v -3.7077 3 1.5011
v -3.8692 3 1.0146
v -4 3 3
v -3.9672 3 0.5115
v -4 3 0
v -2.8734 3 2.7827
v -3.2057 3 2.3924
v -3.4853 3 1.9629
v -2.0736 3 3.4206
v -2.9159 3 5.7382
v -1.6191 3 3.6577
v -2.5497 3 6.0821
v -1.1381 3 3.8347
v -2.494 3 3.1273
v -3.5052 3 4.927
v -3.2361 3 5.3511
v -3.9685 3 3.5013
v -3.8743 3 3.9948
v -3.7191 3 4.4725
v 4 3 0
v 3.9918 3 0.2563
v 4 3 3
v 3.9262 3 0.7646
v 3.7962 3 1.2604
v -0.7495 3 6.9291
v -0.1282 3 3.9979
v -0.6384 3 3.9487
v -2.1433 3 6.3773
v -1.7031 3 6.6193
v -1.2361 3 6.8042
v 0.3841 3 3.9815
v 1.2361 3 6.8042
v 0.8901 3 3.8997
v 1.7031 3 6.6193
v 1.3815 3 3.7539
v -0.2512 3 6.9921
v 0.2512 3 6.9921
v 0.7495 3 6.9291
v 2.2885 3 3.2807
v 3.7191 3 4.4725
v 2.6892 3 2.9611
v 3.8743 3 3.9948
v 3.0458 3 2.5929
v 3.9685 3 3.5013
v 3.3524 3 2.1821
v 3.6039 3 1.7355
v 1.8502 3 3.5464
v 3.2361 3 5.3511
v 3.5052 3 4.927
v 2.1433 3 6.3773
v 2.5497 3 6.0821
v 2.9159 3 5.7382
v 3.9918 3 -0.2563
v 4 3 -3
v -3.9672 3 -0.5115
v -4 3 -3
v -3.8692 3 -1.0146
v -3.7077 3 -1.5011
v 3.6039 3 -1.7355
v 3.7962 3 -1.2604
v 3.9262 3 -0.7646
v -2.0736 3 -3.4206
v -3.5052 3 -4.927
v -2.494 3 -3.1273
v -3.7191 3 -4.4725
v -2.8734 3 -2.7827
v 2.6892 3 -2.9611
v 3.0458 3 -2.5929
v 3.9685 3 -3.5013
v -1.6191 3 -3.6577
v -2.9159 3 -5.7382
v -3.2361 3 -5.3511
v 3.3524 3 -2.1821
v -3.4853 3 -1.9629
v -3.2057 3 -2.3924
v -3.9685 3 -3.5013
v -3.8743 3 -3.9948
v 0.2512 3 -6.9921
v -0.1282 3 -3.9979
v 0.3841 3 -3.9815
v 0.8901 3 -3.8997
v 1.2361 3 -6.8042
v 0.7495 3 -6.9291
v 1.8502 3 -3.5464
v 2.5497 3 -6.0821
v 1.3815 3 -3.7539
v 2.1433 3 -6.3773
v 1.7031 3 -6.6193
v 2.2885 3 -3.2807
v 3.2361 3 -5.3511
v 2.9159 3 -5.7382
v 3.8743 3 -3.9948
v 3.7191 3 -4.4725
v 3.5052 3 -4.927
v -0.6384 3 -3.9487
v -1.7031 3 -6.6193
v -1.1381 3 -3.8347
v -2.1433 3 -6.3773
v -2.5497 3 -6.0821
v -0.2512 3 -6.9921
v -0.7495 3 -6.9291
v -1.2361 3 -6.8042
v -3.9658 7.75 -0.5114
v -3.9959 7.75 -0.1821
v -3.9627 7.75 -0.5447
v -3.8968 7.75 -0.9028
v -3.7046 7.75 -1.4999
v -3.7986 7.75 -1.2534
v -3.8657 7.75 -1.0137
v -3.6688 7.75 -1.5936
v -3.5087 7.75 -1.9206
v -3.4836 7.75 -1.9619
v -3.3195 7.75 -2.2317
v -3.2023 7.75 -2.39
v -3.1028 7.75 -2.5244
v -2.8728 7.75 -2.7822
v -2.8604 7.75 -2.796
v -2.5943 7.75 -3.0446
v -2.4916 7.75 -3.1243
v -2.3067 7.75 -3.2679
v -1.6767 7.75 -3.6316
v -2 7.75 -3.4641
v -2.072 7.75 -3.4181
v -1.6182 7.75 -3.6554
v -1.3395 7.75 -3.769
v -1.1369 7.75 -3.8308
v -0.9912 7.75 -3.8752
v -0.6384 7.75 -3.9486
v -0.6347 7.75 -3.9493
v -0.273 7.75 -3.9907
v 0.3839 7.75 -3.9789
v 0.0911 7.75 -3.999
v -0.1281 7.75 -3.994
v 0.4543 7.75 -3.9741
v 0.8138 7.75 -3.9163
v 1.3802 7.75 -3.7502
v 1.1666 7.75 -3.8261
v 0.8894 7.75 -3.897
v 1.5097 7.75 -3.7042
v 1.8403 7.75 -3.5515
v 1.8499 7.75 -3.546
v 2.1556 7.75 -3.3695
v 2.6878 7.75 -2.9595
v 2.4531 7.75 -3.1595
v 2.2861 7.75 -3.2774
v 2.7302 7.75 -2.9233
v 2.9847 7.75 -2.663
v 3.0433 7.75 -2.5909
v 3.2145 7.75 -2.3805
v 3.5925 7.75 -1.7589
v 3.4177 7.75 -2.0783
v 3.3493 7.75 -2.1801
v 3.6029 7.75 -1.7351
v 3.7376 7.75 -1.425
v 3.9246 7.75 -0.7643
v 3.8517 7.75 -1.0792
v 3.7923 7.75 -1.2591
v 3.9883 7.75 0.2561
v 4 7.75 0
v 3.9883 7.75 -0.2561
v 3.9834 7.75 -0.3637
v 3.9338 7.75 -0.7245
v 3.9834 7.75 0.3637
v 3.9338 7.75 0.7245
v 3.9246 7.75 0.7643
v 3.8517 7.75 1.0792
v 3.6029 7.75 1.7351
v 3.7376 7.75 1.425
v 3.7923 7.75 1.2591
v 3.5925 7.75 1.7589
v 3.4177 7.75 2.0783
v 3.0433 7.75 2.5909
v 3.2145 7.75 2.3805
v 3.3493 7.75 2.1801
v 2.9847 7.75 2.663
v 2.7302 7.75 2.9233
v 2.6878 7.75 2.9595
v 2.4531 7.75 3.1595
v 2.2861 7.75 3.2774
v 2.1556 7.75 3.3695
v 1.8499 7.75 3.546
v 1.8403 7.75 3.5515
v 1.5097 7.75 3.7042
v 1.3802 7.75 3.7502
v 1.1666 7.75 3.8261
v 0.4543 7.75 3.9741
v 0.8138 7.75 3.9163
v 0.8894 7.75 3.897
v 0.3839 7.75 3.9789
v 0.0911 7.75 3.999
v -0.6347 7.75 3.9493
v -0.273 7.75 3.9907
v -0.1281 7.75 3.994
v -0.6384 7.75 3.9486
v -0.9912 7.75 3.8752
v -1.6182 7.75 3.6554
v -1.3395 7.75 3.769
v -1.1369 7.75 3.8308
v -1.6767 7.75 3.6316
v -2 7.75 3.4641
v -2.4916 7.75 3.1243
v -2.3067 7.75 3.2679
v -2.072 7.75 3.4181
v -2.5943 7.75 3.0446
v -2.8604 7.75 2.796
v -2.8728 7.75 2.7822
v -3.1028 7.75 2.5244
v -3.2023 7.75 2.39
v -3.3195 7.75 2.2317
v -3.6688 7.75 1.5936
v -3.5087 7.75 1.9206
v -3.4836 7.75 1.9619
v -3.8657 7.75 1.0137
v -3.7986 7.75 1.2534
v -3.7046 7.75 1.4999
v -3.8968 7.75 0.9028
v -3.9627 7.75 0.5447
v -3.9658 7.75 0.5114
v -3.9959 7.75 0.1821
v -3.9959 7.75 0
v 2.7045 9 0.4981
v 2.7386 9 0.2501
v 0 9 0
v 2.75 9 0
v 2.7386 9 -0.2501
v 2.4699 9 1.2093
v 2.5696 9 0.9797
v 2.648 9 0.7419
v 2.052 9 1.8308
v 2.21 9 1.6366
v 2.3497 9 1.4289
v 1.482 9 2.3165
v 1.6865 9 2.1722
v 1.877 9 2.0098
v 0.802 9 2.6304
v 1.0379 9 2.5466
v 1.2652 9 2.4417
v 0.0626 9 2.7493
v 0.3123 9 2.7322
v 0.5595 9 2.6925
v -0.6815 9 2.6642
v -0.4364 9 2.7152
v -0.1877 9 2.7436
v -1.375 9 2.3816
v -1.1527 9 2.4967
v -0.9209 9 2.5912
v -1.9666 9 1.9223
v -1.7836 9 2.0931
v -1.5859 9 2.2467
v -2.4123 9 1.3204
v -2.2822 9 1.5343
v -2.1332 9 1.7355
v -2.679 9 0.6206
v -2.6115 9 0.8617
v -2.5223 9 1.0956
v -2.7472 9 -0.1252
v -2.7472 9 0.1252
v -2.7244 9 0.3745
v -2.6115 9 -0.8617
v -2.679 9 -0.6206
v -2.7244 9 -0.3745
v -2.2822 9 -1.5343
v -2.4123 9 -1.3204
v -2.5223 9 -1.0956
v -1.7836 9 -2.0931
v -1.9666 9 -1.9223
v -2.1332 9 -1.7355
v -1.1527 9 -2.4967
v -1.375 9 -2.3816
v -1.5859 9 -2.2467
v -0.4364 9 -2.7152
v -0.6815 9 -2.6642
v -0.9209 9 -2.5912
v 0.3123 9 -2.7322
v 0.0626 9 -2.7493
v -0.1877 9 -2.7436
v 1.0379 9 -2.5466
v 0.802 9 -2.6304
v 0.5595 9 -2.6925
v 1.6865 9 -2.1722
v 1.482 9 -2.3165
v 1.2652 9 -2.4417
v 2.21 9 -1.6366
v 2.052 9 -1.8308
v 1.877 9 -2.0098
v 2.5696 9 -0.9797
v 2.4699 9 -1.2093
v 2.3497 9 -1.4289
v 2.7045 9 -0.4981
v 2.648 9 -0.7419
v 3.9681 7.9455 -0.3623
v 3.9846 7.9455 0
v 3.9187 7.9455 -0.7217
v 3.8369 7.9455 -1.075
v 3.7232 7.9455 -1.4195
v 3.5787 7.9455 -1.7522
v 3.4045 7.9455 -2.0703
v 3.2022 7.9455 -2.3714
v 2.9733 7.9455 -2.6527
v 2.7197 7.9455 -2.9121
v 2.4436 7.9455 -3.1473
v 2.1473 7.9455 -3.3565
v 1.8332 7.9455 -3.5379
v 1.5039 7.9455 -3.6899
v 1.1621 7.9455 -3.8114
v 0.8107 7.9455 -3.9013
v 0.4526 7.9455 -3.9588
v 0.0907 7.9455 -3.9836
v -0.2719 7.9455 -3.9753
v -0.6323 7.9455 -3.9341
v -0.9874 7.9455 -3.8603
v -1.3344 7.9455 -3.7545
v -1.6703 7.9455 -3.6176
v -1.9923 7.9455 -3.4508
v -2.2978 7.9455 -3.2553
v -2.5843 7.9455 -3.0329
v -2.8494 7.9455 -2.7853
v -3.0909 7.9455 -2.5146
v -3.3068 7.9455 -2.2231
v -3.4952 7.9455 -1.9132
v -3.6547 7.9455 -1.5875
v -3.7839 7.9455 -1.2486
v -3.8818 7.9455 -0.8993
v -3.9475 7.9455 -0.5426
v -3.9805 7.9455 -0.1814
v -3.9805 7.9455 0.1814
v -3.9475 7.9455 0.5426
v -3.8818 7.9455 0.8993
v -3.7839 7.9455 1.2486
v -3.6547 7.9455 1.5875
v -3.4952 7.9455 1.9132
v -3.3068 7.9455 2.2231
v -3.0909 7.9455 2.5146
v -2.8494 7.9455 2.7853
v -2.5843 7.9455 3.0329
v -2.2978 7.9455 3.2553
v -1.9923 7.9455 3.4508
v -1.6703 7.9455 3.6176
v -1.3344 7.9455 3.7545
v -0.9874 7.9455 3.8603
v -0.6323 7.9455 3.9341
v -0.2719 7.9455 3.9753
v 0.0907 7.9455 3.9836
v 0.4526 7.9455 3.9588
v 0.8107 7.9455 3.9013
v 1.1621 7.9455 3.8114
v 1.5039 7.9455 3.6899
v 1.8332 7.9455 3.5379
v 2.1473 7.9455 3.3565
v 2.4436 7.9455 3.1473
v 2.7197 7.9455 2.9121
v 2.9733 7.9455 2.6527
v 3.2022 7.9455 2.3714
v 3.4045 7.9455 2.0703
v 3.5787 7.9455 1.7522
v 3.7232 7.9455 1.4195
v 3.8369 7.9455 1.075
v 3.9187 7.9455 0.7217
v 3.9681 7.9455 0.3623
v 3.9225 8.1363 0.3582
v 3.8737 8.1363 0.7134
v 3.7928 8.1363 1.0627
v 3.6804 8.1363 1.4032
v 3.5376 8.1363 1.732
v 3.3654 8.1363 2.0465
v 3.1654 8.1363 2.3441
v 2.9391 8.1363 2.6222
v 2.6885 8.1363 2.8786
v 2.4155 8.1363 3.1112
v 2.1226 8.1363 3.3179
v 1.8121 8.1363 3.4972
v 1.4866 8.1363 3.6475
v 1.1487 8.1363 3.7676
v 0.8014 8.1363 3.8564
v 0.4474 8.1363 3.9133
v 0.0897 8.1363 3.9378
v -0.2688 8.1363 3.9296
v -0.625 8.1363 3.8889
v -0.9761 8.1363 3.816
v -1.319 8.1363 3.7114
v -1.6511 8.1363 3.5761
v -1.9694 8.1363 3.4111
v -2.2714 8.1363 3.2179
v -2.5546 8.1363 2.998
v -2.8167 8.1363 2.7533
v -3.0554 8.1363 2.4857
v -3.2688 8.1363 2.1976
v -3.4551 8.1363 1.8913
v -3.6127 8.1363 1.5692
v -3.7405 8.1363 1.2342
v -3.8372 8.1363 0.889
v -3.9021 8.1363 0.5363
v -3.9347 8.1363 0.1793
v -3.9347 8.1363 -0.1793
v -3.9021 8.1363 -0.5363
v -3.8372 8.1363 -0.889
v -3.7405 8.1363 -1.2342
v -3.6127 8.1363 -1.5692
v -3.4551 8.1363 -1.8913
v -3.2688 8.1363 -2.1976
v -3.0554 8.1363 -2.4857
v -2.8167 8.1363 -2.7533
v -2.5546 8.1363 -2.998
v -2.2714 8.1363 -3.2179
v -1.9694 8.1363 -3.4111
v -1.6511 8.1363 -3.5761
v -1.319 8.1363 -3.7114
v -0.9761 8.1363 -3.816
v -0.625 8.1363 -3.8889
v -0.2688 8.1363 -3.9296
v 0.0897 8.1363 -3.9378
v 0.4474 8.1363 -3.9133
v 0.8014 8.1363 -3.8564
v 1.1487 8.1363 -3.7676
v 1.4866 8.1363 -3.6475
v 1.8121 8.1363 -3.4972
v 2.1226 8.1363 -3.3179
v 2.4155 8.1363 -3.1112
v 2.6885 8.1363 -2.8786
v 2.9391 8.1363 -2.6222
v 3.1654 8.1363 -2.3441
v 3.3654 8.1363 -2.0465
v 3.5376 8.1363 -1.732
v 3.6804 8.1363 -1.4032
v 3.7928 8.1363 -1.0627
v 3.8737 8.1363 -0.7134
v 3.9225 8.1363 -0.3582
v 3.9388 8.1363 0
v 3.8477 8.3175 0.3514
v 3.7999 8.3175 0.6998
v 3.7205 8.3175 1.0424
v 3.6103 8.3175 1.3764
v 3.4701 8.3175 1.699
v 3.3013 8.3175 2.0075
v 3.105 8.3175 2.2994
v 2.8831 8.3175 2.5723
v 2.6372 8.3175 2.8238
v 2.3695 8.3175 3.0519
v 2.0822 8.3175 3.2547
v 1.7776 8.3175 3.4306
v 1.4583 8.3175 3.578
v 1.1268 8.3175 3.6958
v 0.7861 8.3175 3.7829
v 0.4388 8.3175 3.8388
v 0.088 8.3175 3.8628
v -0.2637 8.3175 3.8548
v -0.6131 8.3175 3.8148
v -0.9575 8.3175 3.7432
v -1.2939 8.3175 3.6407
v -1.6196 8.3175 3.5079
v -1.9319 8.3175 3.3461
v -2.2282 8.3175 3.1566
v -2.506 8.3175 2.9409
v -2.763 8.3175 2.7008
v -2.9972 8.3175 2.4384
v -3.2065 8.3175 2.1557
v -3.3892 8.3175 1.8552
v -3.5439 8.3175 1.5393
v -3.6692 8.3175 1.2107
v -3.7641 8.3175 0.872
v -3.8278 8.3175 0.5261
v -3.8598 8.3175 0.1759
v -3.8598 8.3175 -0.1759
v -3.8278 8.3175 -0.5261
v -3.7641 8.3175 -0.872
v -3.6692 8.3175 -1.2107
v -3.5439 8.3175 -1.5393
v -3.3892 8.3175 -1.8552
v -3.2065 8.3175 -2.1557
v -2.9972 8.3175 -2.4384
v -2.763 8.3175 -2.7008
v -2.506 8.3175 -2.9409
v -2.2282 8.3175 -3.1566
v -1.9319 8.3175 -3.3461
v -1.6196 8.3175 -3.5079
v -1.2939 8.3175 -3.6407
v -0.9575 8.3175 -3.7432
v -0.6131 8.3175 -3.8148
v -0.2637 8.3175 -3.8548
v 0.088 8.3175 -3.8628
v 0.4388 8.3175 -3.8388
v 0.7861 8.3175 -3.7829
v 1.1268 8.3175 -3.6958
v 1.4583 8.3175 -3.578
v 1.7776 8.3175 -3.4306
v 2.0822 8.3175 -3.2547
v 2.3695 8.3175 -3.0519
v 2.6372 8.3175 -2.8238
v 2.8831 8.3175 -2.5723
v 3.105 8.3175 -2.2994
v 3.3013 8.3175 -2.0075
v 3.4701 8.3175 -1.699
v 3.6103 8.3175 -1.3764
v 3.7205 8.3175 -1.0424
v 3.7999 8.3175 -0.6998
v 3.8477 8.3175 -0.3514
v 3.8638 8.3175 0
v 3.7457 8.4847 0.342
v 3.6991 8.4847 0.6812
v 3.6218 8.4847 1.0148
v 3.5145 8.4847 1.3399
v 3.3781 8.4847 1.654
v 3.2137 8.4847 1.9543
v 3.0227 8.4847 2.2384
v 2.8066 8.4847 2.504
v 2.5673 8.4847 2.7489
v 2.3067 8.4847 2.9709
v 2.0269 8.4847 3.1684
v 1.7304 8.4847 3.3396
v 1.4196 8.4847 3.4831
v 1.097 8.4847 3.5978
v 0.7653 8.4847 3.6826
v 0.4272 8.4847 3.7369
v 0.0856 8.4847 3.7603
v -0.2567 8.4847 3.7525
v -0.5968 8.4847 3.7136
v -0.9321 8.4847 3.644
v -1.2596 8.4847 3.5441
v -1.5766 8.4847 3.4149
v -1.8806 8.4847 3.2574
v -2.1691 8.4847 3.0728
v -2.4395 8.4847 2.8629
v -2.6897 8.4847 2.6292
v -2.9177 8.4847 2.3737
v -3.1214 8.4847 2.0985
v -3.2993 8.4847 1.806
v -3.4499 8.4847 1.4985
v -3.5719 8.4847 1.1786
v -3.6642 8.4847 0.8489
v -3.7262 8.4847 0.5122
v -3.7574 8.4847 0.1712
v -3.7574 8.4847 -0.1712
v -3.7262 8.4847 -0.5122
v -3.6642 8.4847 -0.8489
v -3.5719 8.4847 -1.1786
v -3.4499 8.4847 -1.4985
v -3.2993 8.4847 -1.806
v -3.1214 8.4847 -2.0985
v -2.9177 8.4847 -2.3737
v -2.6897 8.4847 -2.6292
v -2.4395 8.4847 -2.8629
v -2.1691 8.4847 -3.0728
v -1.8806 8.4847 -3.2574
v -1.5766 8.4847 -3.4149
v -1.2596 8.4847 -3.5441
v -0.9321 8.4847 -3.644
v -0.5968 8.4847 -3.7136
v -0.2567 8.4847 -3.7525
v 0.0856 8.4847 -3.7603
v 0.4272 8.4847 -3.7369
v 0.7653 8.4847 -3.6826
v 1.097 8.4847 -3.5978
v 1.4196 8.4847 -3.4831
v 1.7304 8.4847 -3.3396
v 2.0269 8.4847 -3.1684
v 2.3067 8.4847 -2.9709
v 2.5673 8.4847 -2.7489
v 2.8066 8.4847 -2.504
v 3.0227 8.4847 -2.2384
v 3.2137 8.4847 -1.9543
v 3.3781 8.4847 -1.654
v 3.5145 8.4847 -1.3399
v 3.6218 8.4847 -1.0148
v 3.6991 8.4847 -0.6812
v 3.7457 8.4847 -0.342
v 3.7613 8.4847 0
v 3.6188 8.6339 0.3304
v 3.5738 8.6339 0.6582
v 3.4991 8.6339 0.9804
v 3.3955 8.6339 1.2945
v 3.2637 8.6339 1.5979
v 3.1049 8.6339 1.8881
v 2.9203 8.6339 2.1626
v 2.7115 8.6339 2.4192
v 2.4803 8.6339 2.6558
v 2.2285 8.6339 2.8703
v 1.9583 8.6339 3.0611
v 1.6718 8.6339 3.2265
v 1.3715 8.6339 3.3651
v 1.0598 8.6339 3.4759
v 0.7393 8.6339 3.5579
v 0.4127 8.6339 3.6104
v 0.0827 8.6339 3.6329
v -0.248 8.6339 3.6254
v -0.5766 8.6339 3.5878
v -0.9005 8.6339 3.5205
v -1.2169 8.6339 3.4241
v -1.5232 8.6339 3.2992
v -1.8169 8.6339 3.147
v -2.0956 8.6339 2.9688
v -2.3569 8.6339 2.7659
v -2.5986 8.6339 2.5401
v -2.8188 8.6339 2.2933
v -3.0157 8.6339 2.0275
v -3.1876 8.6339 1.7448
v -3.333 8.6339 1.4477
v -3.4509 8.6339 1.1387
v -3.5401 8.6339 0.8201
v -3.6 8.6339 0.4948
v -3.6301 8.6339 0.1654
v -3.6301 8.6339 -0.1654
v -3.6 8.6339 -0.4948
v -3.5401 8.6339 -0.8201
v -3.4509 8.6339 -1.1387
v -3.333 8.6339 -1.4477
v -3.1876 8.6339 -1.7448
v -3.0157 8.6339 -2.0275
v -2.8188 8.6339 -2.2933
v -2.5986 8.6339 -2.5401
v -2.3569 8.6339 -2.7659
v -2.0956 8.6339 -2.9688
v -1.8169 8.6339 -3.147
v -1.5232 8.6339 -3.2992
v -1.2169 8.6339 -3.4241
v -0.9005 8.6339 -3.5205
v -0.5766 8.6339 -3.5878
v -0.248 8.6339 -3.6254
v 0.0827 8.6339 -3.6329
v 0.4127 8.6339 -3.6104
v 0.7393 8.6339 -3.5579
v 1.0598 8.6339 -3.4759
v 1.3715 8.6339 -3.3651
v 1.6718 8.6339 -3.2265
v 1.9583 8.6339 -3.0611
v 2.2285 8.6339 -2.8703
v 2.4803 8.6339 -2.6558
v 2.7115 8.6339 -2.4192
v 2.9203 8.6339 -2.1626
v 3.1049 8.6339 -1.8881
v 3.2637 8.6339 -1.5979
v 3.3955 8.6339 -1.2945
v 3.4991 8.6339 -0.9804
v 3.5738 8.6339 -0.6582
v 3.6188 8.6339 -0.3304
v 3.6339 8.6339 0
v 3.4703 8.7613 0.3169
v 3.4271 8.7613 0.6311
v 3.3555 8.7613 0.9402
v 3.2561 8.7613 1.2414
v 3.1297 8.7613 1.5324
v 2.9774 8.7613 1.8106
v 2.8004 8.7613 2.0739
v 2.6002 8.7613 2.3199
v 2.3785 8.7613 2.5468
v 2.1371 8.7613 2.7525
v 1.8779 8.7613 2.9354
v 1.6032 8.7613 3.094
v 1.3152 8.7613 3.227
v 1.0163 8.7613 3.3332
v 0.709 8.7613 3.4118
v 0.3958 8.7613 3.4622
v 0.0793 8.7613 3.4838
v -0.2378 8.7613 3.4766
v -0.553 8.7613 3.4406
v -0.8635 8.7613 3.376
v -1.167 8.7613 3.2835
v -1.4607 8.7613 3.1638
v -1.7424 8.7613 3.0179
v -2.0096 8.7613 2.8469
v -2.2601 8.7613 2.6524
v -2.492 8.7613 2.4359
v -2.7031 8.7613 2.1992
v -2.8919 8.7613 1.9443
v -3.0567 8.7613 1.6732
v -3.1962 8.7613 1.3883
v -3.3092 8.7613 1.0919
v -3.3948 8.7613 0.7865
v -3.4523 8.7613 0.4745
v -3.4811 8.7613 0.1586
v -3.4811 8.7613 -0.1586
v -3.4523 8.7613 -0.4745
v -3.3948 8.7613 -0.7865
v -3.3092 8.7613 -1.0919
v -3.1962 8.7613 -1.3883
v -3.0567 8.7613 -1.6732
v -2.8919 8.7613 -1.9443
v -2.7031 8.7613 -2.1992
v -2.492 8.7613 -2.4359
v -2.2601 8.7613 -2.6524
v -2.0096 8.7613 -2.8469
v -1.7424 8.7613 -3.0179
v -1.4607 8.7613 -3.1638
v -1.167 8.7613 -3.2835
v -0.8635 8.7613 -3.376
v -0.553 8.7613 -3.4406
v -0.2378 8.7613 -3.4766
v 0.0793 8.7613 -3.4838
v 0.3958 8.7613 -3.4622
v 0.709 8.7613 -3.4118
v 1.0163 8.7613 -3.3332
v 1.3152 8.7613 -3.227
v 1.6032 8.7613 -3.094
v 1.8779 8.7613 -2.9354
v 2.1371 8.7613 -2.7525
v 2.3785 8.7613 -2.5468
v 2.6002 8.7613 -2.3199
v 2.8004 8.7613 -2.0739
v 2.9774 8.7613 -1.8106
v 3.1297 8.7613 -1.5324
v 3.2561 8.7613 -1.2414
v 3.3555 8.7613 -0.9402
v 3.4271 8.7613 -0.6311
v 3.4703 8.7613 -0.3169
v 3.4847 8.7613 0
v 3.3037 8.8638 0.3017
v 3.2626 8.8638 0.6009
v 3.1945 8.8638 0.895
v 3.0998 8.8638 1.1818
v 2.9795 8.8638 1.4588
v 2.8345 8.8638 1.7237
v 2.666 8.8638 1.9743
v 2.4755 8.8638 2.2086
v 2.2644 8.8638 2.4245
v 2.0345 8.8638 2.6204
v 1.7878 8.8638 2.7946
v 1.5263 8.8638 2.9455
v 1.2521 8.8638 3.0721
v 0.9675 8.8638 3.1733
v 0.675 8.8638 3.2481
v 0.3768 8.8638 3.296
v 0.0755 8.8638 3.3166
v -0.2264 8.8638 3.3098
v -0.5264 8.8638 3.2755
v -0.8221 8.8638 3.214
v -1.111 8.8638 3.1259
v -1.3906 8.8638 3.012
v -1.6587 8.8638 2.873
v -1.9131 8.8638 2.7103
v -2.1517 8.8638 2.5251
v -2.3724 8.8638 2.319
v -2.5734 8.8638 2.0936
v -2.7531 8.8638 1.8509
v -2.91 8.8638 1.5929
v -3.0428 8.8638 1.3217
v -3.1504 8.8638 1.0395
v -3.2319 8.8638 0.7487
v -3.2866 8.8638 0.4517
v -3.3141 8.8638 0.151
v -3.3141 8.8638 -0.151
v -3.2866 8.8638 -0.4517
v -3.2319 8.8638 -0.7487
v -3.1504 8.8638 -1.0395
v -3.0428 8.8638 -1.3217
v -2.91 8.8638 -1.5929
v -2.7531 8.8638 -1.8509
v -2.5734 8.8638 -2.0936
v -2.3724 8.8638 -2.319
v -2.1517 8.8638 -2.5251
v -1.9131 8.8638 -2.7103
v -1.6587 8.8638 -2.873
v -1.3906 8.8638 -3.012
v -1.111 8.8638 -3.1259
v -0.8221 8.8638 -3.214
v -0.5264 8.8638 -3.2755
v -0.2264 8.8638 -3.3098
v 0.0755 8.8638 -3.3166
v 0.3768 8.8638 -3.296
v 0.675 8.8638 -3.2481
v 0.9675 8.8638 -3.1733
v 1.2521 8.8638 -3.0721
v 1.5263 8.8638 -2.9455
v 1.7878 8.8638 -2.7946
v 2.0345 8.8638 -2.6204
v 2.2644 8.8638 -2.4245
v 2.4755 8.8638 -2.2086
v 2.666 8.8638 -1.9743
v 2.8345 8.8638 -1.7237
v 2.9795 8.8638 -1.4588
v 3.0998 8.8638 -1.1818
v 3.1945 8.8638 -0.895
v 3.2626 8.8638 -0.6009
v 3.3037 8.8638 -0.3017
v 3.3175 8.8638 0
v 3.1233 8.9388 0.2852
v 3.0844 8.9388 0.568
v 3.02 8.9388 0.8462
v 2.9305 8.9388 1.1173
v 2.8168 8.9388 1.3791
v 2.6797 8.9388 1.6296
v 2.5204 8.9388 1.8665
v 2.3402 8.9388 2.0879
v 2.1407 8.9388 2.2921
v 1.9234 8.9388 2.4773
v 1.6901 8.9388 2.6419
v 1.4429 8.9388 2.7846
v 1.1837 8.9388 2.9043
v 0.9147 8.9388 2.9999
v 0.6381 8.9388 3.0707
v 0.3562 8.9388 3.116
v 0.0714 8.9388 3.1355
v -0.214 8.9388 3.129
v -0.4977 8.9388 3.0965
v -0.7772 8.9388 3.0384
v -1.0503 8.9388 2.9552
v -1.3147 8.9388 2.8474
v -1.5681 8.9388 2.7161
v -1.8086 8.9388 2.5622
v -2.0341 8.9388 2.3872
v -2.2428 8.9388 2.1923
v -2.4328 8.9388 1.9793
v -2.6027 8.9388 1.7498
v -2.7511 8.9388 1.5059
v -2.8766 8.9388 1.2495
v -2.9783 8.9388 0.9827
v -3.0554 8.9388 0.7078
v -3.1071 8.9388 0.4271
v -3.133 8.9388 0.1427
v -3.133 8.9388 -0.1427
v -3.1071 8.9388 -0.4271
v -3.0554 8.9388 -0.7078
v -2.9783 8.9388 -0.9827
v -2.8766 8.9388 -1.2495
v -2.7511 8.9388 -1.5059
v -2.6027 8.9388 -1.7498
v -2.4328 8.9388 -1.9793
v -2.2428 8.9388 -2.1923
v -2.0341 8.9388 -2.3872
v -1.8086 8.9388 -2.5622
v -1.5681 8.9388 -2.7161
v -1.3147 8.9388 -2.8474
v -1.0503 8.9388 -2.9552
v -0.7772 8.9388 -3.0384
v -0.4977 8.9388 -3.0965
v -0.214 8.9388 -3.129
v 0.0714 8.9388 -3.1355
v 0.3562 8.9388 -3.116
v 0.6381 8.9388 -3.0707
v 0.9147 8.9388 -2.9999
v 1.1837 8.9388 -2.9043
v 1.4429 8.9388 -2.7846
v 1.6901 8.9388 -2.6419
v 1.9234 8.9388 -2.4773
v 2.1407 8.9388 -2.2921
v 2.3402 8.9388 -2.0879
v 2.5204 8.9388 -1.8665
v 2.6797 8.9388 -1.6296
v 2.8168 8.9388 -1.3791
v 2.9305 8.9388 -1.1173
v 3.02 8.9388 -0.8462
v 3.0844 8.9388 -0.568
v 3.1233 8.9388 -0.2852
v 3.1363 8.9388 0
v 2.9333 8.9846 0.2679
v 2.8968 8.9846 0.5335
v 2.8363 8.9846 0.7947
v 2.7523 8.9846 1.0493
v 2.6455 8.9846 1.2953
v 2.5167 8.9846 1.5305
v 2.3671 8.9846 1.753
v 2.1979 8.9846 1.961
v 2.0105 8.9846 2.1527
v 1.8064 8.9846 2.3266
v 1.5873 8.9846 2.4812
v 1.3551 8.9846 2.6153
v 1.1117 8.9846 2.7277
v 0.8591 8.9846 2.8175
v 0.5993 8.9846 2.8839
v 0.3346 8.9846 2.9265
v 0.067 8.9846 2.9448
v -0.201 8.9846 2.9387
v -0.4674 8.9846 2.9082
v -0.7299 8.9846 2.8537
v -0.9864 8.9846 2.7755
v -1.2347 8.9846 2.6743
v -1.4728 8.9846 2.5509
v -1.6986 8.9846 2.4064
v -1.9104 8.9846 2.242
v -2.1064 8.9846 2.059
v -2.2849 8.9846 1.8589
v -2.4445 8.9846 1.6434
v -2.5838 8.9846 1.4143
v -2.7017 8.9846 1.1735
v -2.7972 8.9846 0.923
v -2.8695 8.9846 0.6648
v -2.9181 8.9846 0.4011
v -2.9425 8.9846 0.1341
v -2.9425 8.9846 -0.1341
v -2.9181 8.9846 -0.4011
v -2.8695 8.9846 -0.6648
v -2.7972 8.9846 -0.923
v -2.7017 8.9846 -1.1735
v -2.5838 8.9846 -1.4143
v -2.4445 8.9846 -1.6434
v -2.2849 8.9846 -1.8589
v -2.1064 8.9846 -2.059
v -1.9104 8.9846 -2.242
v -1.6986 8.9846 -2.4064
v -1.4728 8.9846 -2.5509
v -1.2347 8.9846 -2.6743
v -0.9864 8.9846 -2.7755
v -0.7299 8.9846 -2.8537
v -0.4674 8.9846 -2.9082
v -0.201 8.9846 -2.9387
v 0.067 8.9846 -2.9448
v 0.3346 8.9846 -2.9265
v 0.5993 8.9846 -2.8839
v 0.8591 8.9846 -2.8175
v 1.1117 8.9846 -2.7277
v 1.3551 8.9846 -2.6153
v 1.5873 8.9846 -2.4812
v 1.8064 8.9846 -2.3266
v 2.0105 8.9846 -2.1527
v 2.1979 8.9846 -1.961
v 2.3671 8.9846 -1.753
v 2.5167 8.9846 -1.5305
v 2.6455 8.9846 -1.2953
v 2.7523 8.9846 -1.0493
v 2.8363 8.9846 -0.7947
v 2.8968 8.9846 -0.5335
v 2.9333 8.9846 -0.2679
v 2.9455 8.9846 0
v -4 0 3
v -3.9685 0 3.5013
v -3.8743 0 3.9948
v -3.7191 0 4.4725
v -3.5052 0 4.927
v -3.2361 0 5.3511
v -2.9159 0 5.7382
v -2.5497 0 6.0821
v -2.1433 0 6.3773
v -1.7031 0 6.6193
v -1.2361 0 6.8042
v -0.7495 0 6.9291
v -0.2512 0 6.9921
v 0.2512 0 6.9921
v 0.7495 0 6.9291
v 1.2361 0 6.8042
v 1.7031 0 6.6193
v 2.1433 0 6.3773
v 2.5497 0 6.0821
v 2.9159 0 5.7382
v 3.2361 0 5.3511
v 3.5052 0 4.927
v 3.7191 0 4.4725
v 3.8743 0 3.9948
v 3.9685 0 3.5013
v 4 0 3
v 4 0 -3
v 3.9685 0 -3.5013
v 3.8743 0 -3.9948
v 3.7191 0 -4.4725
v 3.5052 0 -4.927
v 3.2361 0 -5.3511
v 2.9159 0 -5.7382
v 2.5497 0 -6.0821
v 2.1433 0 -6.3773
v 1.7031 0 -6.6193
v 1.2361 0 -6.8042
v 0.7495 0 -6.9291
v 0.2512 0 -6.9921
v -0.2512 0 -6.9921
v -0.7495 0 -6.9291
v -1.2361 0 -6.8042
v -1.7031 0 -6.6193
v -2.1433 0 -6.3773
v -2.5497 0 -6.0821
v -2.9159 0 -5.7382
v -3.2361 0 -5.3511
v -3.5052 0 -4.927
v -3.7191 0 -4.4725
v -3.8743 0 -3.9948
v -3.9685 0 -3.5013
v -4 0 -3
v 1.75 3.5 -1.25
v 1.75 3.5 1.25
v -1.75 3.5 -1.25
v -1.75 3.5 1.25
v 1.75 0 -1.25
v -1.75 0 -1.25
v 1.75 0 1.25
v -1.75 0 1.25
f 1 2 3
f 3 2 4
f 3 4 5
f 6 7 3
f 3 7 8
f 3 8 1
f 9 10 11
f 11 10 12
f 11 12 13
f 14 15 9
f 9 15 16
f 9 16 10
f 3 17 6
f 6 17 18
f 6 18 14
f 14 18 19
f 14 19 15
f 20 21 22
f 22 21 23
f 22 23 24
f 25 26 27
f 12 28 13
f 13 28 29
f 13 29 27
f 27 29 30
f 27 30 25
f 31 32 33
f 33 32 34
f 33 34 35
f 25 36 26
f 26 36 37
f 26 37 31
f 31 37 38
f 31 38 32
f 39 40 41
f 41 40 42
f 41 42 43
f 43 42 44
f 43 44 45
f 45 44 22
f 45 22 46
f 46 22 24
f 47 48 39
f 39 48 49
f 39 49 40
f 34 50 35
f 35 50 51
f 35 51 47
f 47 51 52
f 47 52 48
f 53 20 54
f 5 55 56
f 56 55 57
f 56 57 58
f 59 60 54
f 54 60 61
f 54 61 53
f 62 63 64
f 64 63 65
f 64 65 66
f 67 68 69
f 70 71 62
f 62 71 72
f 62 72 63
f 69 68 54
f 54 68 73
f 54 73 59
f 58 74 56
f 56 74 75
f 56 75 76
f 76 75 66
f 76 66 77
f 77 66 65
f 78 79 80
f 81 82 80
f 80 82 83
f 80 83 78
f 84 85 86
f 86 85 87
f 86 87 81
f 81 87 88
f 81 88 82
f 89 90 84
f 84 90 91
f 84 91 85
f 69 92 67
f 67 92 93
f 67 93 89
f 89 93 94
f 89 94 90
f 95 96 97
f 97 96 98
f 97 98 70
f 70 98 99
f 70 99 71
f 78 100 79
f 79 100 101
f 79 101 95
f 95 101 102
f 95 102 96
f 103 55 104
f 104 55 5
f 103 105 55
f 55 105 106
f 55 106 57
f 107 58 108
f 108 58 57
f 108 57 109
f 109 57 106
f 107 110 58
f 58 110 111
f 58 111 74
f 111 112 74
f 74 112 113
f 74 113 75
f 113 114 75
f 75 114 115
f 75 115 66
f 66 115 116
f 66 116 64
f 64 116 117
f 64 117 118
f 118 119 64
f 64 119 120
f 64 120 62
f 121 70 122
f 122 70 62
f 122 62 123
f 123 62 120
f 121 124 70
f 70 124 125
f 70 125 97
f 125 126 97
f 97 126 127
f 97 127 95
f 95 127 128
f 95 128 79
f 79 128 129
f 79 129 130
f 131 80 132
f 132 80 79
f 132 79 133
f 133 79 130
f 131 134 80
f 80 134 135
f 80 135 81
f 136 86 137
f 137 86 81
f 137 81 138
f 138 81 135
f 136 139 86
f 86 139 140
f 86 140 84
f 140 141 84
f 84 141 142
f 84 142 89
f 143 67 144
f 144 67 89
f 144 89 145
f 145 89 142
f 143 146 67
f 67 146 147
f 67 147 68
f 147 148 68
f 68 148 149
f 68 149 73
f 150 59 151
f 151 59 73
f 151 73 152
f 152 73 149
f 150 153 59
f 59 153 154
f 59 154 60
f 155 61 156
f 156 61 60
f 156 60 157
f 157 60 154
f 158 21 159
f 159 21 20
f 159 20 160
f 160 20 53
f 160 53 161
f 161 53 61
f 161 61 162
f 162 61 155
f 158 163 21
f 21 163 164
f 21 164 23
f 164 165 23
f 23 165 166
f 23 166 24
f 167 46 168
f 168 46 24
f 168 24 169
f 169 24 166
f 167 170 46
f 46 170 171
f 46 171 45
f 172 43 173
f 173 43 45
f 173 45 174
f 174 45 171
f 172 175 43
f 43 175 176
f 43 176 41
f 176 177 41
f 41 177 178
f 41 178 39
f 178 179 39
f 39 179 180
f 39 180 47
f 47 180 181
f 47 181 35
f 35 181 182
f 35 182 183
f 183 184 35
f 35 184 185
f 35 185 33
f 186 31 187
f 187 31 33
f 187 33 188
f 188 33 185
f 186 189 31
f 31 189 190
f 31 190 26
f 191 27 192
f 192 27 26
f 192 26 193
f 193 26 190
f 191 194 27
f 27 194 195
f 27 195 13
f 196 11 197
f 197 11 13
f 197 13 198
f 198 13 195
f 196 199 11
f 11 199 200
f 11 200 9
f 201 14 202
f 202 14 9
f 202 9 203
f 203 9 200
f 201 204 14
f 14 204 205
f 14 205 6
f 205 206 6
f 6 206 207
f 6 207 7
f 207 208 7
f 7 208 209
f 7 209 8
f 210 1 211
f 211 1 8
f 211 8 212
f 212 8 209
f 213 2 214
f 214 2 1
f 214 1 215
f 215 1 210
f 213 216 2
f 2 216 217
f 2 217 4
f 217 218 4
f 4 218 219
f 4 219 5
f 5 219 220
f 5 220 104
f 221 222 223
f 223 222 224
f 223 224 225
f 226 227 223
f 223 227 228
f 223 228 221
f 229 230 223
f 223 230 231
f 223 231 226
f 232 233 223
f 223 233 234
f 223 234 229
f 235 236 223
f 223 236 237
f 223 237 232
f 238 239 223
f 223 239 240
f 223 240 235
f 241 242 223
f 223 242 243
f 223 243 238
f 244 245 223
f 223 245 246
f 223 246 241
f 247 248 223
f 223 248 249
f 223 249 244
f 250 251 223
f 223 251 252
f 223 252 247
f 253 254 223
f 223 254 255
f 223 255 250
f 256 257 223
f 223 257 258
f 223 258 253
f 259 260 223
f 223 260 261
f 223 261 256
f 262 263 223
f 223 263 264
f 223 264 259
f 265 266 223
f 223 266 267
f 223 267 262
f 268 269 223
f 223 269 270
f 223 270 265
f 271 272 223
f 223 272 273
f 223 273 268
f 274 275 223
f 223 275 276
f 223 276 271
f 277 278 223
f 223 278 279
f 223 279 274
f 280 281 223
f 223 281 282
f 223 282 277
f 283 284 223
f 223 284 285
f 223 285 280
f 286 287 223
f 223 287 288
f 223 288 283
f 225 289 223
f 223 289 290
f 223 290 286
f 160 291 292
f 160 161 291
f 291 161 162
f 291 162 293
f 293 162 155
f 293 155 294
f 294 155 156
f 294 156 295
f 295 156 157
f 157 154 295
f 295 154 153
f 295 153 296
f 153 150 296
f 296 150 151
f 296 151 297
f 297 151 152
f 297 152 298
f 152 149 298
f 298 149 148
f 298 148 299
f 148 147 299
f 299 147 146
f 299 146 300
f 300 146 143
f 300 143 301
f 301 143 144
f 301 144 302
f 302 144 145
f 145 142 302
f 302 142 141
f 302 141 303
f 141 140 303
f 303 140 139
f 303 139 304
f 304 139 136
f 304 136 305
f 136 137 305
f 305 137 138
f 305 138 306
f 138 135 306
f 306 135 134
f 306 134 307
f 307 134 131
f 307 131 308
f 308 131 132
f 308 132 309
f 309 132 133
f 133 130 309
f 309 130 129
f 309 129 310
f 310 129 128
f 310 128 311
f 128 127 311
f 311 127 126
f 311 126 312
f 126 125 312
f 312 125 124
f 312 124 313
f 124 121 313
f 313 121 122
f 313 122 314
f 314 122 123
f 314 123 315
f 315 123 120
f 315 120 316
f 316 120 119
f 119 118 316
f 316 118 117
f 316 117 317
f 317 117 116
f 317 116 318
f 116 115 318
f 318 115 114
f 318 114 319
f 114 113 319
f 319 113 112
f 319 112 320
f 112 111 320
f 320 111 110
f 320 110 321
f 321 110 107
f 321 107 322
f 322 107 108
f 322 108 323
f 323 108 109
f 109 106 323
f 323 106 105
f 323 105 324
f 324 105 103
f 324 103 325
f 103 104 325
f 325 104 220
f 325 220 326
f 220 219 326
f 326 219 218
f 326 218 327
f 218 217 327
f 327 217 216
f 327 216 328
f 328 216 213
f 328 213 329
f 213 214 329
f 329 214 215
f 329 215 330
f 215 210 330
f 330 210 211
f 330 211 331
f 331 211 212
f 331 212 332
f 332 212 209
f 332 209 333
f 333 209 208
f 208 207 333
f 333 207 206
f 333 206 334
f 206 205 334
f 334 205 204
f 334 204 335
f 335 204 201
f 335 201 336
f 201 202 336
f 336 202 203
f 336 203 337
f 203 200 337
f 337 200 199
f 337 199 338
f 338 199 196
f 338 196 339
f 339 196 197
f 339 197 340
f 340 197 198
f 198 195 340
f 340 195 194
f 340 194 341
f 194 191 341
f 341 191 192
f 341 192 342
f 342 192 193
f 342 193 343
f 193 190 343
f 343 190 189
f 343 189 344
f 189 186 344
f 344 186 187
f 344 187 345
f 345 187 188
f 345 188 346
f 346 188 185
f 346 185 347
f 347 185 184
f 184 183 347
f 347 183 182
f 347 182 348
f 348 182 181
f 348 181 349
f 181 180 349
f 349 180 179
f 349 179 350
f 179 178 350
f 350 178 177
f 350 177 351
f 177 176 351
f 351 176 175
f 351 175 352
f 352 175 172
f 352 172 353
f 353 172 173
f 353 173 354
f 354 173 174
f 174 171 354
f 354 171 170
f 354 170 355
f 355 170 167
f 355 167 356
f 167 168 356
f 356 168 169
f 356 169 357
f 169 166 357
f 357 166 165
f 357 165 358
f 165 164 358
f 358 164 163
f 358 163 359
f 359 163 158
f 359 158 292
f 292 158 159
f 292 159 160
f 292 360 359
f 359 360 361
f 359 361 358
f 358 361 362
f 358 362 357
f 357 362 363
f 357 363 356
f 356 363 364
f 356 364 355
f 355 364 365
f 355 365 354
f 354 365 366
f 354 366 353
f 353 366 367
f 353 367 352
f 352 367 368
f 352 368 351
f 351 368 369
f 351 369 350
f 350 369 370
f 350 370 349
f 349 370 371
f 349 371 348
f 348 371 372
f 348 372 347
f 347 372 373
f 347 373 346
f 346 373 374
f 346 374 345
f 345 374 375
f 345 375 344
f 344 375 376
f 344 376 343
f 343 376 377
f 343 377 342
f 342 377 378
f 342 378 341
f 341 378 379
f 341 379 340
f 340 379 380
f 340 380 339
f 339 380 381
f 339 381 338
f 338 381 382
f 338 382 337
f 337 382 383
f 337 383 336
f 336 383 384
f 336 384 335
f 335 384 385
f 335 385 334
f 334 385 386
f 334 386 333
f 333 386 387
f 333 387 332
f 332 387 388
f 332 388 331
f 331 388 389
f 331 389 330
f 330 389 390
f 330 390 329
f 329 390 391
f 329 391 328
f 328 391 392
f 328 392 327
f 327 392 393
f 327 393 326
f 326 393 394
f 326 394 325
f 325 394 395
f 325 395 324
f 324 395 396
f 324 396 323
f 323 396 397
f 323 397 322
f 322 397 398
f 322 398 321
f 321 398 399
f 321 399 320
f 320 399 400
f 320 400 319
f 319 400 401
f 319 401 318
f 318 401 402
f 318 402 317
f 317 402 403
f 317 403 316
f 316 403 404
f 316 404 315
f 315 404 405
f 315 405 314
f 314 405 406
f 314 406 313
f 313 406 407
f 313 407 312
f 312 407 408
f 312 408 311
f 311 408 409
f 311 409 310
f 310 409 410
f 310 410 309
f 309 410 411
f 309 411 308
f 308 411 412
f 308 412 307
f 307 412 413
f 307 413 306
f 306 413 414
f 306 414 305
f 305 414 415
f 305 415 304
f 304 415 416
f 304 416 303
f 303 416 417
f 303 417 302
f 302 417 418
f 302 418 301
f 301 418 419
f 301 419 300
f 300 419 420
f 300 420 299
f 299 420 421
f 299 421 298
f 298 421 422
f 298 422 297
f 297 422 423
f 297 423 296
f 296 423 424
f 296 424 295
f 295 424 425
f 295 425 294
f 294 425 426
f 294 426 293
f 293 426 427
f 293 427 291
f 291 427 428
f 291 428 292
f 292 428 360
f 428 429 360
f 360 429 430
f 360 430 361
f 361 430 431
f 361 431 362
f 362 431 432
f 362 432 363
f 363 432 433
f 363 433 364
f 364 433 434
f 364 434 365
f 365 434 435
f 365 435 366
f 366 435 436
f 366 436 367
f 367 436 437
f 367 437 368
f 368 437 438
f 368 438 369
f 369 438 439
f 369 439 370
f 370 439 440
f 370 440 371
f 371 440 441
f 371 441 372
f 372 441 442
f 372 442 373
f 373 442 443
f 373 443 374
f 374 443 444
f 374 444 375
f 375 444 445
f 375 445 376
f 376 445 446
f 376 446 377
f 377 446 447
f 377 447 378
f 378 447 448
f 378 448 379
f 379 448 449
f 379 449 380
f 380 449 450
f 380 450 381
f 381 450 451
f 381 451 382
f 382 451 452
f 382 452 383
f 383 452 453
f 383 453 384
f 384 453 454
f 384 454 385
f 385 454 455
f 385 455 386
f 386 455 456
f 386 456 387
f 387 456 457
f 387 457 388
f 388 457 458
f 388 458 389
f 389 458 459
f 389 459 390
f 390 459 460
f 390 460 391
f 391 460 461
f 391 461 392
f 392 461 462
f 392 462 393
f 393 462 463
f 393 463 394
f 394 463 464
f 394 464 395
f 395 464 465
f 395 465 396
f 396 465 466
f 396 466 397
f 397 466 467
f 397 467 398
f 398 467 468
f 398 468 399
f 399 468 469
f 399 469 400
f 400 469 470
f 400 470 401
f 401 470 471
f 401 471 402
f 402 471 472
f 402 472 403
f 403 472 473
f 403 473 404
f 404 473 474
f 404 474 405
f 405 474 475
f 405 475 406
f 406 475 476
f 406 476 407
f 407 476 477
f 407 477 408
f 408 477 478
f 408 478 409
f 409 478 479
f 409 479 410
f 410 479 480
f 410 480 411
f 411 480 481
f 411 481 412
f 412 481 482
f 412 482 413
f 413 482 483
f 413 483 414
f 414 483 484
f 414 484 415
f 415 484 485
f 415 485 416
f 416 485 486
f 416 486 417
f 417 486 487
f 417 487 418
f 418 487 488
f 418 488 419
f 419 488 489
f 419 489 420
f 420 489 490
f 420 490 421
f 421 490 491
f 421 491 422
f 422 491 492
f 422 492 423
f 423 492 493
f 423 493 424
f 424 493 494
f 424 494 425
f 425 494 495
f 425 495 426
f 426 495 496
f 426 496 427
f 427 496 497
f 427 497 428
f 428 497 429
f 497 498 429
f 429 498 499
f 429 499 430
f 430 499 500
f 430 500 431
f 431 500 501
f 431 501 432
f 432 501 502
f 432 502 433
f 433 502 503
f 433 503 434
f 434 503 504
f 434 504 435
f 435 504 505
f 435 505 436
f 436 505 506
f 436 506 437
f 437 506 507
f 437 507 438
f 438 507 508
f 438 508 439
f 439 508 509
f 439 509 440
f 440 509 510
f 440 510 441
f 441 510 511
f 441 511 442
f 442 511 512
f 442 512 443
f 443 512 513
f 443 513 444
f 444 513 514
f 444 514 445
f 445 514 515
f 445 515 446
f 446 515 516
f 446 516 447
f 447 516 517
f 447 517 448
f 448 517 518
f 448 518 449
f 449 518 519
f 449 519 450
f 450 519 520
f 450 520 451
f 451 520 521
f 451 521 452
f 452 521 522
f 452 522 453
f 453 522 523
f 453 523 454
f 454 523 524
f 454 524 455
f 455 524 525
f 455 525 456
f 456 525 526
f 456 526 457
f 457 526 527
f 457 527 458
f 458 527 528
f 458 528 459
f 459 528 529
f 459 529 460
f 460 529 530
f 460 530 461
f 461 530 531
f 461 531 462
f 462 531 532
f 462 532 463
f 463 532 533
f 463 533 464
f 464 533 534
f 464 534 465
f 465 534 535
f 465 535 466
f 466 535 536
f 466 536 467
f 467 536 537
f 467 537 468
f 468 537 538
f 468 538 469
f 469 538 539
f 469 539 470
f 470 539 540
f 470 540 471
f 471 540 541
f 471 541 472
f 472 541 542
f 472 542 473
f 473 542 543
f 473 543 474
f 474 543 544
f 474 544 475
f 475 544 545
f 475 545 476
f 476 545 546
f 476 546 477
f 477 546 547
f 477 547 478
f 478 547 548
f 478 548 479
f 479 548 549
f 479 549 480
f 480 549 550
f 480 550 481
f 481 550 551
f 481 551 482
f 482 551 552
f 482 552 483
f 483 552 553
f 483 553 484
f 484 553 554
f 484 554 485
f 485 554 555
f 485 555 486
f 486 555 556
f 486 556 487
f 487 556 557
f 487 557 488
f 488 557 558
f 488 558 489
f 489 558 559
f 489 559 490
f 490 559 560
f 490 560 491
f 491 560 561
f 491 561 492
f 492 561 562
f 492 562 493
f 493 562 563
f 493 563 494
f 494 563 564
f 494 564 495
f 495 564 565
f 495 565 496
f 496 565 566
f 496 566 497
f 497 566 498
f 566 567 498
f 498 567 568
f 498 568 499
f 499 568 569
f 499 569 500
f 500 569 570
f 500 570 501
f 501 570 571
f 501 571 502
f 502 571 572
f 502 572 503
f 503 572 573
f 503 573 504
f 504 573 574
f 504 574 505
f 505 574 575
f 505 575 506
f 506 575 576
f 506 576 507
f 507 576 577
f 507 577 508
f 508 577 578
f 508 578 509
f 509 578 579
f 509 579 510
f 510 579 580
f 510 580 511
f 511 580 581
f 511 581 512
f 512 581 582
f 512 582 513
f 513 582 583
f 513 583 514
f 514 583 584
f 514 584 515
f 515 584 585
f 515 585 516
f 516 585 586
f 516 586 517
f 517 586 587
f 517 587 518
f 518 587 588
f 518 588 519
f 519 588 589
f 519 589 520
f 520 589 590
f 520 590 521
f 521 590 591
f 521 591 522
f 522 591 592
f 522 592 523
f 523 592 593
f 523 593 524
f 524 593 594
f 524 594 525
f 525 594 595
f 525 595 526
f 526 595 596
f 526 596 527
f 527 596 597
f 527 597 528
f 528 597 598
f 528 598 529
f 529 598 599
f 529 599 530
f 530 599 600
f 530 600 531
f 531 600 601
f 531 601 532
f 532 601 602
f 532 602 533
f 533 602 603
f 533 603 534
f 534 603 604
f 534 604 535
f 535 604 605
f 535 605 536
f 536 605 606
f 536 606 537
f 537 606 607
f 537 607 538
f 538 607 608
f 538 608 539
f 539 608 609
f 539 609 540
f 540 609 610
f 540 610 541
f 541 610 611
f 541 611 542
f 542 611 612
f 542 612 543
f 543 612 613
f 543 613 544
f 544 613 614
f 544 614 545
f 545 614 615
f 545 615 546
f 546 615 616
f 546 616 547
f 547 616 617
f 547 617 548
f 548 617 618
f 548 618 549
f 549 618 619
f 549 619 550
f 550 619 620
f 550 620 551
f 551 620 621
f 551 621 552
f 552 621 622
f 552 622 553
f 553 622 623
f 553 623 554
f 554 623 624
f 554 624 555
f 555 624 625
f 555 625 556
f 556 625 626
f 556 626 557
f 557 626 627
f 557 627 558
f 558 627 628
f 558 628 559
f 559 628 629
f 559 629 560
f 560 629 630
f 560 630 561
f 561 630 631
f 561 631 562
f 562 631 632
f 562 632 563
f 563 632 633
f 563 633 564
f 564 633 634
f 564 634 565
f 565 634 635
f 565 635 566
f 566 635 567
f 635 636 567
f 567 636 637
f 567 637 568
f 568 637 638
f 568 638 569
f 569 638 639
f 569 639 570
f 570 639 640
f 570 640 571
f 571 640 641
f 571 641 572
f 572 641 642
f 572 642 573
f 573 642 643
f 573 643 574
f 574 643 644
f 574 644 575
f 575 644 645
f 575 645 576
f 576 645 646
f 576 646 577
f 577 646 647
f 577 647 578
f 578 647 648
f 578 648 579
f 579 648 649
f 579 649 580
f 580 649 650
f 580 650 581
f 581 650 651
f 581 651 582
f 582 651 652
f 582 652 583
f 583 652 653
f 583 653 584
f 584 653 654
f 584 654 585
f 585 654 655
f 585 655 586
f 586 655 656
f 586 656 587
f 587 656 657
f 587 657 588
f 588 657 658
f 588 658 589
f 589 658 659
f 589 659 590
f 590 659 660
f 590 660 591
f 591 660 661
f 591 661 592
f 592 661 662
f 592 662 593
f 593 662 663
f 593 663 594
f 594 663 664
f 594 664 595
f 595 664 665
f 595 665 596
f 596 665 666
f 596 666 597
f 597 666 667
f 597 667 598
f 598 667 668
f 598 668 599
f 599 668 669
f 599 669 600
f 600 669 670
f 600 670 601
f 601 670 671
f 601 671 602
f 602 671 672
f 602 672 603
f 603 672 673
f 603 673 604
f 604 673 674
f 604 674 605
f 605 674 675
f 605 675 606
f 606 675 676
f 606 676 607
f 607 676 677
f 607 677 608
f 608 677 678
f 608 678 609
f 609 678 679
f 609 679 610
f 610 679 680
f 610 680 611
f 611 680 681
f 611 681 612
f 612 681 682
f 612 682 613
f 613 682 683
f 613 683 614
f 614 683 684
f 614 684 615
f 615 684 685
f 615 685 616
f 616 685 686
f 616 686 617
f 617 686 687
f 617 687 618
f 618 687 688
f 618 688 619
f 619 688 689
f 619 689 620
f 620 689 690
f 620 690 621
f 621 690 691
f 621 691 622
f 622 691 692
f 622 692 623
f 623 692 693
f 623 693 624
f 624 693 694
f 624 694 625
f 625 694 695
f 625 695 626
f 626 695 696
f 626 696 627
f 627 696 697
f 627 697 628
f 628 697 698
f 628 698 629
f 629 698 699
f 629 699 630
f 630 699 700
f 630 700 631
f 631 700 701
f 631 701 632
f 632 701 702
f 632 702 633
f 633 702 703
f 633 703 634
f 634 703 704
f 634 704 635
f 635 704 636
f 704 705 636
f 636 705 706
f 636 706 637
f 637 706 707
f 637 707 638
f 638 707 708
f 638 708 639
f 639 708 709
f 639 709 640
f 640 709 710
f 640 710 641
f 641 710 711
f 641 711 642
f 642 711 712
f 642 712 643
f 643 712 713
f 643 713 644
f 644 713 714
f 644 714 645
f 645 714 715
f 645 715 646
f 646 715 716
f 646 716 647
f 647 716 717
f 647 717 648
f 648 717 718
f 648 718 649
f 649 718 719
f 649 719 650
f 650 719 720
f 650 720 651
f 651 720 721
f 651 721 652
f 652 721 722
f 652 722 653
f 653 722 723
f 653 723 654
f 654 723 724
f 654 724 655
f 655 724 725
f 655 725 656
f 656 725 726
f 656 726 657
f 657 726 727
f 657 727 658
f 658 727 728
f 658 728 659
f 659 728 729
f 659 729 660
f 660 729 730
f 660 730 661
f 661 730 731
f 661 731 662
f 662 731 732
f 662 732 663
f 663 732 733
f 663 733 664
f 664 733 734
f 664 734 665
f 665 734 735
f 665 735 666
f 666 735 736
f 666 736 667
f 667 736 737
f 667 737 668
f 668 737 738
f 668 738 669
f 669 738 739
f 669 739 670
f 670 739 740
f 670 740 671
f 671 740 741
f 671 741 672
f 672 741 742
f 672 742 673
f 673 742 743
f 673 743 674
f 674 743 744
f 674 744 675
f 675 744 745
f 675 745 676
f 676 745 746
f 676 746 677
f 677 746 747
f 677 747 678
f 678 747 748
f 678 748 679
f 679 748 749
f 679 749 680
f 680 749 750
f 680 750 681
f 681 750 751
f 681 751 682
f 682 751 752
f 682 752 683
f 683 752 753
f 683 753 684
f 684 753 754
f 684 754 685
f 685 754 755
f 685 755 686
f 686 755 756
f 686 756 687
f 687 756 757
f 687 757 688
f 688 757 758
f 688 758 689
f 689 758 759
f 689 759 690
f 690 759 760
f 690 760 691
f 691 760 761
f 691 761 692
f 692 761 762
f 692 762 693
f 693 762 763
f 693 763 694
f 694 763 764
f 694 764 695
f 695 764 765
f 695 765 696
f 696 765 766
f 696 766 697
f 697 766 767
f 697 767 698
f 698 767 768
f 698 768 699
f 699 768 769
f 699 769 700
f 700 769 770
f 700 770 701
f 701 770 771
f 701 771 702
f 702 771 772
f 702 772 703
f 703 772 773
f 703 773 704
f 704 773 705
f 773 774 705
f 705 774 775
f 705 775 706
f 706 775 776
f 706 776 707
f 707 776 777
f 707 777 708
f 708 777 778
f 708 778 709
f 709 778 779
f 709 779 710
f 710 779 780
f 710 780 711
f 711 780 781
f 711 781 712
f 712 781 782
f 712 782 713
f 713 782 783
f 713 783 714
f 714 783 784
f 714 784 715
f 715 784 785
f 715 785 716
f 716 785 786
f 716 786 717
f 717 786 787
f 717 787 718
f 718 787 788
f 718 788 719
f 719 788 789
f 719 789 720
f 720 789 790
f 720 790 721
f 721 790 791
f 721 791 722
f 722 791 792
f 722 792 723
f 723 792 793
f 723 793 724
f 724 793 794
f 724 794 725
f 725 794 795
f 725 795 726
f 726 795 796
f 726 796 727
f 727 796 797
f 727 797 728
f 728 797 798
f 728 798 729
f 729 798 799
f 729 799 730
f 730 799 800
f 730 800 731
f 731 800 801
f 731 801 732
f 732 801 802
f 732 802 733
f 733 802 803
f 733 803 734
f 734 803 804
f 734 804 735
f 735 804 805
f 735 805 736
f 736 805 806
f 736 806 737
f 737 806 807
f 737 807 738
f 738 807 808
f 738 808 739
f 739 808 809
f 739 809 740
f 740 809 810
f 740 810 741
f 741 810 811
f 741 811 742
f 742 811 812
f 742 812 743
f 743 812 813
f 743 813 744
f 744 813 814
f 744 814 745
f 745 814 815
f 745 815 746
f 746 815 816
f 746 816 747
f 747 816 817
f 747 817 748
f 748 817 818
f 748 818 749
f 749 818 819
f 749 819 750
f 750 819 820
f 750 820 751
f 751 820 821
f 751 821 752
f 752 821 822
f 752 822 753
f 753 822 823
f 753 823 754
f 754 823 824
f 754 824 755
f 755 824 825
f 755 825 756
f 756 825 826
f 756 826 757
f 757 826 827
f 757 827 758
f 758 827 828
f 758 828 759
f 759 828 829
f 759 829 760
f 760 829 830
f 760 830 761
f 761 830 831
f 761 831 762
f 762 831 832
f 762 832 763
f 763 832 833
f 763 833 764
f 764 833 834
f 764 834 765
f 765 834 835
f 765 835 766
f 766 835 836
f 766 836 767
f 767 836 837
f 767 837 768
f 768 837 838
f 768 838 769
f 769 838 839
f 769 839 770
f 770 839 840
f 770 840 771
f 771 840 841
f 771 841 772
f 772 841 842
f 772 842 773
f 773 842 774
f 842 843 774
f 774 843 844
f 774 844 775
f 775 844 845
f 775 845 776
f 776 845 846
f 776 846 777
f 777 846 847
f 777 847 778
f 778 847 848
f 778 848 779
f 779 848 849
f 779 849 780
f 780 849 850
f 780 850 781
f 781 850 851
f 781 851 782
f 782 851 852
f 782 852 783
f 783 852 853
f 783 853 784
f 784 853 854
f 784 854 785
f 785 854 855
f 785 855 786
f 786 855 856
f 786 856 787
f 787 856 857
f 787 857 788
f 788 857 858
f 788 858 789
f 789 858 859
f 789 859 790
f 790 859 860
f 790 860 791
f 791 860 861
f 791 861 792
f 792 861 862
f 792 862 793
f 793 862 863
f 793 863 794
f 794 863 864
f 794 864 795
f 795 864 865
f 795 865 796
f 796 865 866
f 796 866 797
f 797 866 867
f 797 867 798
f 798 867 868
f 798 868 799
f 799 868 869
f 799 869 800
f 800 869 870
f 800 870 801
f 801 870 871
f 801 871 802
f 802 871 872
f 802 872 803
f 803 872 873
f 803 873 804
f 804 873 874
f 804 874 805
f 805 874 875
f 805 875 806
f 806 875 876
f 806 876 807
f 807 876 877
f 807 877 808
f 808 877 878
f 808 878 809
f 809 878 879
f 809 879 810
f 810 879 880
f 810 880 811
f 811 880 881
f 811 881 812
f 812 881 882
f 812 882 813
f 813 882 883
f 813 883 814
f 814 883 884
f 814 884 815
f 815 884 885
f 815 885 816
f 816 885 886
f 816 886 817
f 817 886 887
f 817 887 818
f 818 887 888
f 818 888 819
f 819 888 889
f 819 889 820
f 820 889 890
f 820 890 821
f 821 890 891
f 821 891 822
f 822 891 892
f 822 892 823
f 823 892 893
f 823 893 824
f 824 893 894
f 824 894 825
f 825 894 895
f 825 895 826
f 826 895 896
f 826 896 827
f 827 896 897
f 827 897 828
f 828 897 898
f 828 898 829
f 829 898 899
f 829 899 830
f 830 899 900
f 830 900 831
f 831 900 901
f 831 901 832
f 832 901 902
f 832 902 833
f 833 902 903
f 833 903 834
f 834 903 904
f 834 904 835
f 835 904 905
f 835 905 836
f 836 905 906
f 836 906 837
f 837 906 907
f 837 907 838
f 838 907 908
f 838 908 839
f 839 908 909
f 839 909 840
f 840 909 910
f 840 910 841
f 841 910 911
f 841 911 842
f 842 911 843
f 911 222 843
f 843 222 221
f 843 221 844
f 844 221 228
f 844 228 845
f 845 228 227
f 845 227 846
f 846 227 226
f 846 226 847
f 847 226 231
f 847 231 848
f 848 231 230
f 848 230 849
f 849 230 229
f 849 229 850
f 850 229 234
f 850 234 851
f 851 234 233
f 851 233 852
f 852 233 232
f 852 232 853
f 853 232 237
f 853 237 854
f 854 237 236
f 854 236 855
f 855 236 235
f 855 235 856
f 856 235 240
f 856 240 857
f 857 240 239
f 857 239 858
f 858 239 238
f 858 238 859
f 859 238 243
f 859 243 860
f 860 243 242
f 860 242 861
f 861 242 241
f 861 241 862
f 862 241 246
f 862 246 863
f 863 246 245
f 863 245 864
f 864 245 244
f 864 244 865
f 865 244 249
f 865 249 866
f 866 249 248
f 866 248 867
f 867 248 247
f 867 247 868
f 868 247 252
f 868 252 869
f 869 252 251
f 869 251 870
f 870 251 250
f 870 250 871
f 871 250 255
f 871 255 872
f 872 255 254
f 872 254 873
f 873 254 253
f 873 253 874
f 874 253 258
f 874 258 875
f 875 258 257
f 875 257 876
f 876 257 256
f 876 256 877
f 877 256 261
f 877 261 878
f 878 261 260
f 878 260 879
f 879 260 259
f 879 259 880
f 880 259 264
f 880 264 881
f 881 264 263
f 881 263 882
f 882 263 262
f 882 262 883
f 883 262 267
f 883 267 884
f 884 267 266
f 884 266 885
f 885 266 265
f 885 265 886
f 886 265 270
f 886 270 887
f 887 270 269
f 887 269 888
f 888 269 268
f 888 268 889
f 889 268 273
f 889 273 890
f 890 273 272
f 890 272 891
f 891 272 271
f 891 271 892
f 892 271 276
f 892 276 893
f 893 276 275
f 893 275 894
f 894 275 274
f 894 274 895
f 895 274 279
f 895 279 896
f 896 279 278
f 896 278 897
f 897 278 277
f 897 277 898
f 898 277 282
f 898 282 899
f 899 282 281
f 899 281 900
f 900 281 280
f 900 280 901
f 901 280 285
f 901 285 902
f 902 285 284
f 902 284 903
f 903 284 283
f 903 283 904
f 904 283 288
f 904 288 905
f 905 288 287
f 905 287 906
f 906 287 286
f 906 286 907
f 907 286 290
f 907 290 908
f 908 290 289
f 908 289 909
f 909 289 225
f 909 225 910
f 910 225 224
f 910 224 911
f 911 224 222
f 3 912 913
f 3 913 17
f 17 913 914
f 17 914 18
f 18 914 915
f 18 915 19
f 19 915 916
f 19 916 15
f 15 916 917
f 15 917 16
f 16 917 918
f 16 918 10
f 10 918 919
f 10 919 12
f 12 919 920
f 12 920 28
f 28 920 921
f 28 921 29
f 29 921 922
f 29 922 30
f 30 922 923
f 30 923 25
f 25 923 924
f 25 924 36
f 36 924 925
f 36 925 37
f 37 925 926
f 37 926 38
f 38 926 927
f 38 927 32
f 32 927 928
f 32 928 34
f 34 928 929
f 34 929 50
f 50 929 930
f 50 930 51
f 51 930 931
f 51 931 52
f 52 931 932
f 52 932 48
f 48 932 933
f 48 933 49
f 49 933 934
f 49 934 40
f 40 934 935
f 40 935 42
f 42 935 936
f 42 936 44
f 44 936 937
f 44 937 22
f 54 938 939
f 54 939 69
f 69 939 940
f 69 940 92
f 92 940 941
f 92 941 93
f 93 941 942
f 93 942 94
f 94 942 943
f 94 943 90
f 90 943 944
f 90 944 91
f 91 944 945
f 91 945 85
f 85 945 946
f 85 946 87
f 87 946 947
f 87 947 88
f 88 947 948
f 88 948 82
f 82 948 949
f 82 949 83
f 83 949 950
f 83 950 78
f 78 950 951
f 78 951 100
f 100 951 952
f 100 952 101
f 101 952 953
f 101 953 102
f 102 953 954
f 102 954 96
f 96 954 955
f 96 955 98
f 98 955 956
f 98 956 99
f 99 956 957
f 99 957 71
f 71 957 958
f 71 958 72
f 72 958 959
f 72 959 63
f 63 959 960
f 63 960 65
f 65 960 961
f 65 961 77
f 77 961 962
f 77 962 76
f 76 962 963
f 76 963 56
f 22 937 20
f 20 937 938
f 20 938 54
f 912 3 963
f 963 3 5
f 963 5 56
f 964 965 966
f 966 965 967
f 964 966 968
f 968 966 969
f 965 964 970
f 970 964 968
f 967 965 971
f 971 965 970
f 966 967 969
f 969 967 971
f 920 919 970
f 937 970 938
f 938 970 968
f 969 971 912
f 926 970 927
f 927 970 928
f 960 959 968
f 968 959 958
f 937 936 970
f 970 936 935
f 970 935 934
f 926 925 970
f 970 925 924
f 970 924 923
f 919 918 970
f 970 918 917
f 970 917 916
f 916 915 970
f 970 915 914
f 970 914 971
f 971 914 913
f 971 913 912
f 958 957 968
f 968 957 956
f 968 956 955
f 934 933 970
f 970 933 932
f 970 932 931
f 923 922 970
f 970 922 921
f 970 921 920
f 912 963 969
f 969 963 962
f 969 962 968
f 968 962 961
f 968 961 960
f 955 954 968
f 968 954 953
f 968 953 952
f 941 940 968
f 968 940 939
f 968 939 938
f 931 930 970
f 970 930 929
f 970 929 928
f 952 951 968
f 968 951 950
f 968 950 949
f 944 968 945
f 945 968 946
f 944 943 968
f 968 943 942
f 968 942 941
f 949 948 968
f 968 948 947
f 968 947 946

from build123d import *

# Parameters (mm, degrees)
SKETCH2_W          = 3.5
SKETCH2_H          = 2.5
CUT_EXTRUDE1_DEPTH = 3.5
FILLET1_R          = 1.25
CUT_EXTRUDE2_DEPTH = 14.37908816


with BuildPart() as part:
    # Sketch1 → Revolve1 (revolve)
    with BuildSketch(Plane.XY, mode=Mode.PRIVATE) as revolve1_sk:
        Polygon((0, 9), (4, 9), (4, 3), (7, 3), (7, 0), (0, 0), align=None)
    revolve(revolve1_sk.sketch.rotate(Axis((0, 9, 0), (0, -1, 0)), 180), axis=Axis((0, 9, 0), (0, -1, 0)))

    # Sketch2 → Cut-Extrude1 (cut)
    with BuildSketch(Plane.XZ):
        Rectangle(SKETCH2_W, SKETCH2_H)
    extrude(amount=-CUT_EXTRUDE1_DEPTH, mode=Mode.SUBTRACT)

    # Fillet1
    fillet1_edges = [part.edges().sort_by_distance(p)[0] for p in [
        (4, 9, 0),
    ]]
    fillet(fillet1_edges, radius=FILLET1_R)

    # Sketch3 → Cut-Extrude2 (cut, through all)
    with BuildSketch(Plane(origin=(0, 0, 0), x_dir=(1, 0, 0), z_dir=(0, 1, 0))):
        with BuildLine():
            Line((-14, -3), (-14, 3))
            ThreePointArc((-14, 3), (0, 17), (14, 3))
            Line((14, 3), (14, -3))
            ThreePointArc((14, -3), (0, -17), (-14, -3))
        make_face()
        with BuildLine():
            Line((-4, -3), (-4, 3))
            ThreePointArc((-4, 3), (0, 7), (4, 3))
            Line((4, 3), (4, -3))
            ThreePointArc((4, -3), (0, -7), (-4, -3))
        make_face(mode=Mode.SUBTRACT)
    extrude(amount=CUT_EXTRUDE2_DEPTH, mode=Mode.SUBTRACT)


solid = part.part
